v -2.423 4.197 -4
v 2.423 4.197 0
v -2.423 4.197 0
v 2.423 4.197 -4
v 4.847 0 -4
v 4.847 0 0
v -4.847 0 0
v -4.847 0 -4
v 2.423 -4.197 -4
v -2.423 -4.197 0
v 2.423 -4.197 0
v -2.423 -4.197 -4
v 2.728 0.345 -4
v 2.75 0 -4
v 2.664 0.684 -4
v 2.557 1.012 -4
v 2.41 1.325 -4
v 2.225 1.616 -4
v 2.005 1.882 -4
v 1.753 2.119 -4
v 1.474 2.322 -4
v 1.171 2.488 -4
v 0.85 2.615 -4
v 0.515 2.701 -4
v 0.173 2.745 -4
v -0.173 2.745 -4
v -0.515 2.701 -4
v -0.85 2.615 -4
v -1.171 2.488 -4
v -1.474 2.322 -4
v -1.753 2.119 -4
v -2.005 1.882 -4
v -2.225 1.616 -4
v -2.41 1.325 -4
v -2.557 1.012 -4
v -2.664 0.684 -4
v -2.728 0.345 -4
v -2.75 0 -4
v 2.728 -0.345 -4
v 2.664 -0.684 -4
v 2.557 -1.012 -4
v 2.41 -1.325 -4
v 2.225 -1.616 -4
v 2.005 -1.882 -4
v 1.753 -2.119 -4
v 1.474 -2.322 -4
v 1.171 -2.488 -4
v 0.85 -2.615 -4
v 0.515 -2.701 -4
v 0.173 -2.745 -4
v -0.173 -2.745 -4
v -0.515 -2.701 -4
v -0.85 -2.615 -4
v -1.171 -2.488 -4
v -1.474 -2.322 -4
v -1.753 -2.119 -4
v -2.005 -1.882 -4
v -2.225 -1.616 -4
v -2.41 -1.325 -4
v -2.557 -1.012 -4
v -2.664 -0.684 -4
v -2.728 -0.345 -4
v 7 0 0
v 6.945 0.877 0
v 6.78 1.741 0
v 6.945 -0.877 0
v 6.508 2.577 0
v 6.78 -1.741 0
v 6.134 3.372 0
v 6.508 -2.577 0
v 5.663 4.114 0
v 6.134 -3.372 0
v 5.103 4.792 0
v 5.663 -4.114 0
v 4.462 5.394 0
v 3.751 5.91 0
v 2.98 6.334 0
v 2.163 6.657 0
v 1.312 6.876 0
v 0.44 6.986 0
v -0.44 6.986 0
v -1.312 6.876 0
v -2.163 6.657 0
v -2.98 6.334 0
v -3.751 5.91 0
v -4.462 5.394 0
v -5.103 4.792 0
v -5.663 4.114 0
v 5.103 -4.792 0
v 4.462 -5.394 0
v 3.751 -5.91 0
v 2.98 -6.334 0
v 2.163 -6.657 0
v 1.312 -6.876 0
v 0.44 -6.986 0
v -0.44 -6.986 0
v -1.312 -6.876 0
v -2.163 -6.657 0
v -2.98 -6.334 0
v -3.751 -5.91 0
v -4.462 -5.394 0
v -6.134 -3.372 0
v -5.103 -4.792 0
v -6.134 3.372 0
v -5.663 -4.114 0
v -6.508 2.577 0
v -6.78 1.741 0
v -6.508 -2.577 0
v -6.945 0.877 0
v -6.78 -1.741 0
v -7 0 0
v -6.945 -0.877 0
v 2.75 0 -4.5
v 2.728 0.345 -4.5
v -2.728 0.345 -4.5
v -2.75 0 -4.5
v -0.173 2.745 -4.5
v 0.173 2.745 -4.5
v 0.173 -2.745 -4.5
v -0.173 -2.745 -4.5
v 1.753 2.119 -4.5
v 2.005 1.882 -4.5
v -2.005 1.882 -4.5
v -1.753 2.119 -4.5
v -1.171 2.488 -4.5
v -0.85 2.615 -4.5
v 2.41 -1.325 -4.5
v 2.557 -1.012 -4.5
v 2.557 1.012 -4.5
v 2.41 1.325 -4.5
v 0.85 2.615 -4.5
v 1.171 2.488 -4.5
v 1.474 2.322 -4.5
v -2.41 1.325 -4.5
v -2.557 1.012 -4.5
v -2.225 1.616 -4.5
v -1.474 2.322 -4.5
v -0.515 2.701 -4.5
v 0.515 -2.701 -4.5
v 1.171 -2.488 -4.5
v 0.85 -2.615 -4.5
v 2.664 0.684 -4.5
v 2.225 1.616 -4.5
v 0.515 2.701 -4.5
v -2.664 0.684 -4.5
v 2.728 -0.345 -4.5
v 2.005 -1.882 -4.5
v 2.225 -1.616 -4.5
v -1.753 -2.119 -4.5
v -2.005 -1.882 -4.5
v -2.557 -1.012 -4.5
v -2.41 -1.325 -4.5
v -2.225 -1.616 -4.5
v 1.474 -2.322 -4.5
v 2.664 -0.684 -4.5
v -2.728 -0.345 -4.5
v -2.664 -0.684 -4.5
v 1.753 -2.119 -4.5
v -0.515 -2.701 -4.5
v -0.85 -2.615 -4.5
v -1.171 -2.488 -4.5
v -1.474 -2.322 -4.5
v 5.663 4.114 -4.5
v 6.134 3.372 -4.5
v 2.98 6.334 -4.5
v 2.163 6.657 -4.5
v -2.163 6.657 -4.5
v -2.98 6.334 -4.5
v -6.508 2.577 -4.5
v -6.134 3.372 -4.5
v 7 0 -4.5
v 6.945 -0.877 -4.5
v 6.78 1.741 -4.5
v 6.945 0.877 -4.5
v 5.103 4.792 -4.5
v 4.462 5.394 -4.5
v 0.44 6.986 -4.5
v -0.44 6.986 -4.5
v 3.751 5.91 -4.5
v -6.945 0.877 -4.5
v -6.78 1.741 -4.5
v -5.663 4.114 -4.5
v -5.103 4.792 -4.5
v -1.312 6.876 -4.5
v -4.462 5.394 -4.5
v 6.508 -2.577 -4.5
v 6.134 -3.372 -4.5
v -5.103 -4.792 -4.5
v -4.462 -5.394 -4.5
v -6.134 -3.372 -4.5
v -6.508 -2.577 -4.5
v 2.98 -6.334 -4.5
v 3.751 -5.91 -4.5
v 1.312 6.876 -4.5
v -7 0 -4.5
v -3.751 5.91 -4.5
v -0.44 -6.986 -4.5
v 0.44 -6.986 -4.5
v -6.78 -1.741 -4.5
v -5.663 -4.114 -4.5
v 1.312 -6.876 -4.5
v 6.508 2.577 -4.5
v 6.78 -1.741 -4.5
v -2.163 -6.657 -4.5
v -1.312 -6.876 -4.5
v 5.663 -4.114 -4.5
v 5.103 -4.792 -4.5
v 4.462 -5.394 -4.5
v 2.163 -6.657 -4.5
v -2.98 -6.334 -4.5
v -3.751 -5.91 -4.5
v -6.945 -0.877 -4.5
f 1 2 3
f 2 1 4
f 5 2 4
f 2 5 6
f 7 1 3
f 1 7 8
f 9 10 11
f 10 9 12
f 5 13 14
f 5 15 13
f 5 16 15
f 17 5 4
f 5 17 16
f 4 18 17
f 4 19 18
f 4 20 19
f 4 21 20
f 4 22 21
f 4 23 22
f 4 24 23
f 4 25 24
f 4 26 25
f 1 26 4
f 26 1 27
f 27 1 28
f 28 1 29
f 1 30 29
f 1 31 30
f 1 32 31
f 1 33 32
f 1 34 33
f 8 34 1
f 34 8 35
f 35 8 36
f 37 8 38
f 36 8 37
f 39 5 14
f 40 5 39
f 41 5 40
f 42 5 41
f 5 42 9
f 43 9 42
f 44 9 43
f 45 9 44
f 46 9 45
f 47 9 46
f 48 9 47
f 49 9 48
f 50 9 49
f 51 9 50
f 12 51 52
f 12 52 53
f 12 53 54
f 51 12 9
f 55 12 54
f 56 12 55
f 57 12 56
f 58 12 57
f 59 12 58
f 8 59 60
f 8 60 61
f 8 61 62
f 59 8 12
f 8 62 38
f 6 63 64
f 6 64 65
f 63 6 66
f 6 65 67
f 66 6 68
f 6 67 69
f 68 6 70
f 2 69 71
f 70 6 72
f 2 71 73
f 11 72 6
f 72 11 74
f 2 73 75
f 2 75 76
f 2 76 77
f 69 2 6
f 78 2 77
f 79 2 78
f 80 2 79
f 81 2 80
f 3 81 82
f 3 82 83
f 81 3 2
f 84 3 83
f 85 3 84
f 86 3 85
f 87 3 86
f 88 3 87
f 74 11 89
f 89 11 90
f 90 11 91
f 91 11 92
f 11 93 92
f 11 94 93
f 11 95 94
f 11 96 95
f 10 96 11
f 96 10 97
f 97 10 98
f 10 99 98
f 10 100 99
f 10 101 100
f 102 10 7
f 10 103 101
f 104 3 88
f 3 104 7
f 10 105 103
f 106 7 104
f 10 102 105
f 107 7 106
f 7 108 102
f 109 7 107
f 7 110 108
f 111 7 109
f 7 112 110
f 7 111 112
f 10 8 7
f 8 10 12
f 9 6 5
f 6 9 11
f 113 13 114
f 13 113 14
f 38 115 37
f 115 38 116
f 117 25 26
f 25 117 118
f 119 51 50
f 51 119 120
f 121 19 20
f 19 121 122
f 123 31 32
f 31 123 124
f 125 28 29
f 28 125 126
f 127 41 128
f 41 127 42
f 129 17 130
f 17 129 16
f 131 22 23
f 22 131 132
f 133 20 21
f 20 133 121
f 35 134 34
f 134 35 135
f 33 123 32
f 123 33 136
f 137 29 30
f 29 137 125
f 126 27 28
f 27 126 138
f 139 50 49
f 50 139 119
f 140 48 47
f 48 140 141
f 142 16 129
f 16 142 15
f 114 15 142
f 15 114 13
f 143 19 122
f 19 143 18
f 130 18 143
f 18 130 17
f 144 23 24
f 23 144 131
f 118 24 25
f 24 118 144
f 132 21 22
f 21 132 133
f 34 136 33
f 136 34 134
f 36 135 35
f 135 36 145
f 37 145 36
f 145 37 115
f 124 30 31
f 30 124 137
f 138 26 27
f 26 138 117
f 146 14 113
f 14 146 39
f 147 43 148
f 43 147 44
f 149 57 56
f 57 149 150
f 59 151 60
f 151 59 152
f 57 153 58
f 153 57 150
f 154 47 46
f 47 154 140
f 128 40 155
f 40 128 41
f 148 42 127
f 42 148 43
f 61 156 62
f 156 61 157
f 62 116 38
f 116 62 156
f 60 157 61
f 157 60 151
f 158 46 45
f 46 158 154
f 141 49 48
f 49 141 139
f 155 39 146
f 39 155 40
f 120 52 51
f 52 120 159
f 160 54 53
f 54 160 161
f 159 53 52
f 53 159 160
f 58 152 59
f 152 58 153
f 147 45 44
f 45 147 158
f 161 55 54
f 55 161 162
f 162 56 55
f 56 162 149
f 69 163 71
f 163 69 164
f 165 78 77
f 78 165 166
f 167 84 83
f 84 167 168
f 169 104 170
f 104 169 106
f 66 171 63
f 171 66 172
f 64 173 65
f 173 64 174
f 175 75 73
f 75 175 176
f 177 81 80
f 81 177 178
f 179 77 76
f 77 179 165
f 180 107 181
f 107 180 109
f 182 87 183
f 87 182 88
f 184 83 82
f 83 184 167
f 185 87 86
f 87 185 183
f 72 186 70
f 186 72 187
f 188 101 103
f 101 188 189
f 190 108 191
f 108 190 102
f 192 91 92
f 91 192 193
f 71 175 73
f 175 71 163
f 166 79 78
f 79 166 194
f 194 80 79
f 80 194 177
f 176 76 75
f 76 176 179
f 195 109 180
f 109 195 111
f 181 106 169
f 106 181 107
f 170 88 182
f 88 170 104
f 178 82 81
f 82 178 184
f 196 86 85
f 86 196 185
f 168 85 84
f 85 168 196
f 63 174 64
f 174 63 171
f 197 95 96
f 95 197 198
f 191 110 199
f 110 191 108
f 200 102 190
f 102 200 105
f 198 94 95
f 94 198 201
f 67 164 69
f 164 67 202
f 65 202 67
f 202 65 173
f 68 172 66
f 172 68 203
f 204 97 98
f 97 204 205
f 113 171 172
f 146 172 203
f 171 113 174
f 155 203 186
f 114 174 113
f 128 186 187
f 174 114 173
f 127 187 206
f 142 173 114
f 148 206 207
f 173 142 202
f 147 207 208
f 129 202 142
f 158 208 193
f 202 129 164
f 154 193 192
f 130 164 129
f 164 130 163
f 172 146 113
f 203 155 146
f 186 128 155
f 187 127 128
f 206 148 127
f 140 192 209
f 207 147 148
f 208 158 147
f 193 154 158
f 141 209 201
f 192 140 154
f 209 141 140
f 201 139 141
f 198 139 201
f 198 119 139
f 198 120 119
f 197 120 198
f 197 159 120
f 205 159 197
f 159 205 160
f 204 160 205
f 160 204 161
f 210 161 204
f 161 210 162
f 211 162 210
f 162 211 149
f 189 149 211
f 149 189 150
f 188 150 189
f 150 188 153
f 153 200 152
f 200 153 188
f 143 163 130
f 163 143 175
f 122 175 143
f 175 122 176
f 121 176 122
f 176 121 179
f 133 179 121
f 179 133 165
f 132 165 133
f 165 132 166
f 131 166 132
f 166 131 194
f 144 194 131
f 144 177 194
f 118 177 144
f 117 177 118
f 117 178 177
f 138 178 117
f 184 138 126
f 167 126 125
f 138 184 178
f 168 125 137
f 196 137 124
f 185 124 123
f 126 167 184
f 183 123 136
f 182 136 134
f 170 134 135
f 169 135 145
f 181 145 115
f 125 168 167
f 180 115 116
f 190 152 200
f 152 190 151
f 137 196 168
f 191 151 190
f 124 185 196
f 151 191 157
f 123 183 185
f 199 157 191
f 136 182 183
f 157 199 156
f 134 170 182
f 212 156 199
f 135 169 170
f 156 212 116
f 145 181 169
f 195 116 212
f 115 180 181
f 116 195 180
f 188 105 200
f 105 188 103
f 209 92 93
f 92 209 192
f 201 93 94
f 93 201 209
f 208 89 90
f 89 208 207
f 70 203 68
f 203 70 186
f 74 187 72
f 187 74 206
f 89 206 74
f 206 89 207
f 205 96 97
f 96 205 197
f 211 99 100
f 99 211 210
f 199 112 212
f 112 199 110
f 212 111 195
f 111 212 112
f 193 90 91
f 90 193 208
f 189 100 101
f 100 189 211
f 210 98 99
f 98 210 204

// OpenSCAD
$fn = 50;


difference() {
	union() {
		translate(v = [0, 0, -4.5000000000]) {
			cylinder(h = 4.5000000000, r = 7.0000000000);
		}
	}
	union() {
		translate(v = [0, 0, 0]) {
			rotate(a = [0, 0, 0]) {
				difference() {
					union() {
						translate(v = [0, 0, -4]) {
							linear_extrude(height = 4) {
								polygon(points = [[4.8468000000, 0.0000000000], [2.4234000000, 4.1974519271], [-2.4234000000, 4.1974519271], [-4.8468000000, 0.0000000000], [-2.4234000000, -4.1974519271], [2.4234000000, -4.1974519271]]);
							}
						}
					}
					union();
				}
			}
		}
		#translate(v = [0, 0, -100.0000000000]) {
			cylinder(h = 200, r = 2.7500000000);
		}
	}
}
